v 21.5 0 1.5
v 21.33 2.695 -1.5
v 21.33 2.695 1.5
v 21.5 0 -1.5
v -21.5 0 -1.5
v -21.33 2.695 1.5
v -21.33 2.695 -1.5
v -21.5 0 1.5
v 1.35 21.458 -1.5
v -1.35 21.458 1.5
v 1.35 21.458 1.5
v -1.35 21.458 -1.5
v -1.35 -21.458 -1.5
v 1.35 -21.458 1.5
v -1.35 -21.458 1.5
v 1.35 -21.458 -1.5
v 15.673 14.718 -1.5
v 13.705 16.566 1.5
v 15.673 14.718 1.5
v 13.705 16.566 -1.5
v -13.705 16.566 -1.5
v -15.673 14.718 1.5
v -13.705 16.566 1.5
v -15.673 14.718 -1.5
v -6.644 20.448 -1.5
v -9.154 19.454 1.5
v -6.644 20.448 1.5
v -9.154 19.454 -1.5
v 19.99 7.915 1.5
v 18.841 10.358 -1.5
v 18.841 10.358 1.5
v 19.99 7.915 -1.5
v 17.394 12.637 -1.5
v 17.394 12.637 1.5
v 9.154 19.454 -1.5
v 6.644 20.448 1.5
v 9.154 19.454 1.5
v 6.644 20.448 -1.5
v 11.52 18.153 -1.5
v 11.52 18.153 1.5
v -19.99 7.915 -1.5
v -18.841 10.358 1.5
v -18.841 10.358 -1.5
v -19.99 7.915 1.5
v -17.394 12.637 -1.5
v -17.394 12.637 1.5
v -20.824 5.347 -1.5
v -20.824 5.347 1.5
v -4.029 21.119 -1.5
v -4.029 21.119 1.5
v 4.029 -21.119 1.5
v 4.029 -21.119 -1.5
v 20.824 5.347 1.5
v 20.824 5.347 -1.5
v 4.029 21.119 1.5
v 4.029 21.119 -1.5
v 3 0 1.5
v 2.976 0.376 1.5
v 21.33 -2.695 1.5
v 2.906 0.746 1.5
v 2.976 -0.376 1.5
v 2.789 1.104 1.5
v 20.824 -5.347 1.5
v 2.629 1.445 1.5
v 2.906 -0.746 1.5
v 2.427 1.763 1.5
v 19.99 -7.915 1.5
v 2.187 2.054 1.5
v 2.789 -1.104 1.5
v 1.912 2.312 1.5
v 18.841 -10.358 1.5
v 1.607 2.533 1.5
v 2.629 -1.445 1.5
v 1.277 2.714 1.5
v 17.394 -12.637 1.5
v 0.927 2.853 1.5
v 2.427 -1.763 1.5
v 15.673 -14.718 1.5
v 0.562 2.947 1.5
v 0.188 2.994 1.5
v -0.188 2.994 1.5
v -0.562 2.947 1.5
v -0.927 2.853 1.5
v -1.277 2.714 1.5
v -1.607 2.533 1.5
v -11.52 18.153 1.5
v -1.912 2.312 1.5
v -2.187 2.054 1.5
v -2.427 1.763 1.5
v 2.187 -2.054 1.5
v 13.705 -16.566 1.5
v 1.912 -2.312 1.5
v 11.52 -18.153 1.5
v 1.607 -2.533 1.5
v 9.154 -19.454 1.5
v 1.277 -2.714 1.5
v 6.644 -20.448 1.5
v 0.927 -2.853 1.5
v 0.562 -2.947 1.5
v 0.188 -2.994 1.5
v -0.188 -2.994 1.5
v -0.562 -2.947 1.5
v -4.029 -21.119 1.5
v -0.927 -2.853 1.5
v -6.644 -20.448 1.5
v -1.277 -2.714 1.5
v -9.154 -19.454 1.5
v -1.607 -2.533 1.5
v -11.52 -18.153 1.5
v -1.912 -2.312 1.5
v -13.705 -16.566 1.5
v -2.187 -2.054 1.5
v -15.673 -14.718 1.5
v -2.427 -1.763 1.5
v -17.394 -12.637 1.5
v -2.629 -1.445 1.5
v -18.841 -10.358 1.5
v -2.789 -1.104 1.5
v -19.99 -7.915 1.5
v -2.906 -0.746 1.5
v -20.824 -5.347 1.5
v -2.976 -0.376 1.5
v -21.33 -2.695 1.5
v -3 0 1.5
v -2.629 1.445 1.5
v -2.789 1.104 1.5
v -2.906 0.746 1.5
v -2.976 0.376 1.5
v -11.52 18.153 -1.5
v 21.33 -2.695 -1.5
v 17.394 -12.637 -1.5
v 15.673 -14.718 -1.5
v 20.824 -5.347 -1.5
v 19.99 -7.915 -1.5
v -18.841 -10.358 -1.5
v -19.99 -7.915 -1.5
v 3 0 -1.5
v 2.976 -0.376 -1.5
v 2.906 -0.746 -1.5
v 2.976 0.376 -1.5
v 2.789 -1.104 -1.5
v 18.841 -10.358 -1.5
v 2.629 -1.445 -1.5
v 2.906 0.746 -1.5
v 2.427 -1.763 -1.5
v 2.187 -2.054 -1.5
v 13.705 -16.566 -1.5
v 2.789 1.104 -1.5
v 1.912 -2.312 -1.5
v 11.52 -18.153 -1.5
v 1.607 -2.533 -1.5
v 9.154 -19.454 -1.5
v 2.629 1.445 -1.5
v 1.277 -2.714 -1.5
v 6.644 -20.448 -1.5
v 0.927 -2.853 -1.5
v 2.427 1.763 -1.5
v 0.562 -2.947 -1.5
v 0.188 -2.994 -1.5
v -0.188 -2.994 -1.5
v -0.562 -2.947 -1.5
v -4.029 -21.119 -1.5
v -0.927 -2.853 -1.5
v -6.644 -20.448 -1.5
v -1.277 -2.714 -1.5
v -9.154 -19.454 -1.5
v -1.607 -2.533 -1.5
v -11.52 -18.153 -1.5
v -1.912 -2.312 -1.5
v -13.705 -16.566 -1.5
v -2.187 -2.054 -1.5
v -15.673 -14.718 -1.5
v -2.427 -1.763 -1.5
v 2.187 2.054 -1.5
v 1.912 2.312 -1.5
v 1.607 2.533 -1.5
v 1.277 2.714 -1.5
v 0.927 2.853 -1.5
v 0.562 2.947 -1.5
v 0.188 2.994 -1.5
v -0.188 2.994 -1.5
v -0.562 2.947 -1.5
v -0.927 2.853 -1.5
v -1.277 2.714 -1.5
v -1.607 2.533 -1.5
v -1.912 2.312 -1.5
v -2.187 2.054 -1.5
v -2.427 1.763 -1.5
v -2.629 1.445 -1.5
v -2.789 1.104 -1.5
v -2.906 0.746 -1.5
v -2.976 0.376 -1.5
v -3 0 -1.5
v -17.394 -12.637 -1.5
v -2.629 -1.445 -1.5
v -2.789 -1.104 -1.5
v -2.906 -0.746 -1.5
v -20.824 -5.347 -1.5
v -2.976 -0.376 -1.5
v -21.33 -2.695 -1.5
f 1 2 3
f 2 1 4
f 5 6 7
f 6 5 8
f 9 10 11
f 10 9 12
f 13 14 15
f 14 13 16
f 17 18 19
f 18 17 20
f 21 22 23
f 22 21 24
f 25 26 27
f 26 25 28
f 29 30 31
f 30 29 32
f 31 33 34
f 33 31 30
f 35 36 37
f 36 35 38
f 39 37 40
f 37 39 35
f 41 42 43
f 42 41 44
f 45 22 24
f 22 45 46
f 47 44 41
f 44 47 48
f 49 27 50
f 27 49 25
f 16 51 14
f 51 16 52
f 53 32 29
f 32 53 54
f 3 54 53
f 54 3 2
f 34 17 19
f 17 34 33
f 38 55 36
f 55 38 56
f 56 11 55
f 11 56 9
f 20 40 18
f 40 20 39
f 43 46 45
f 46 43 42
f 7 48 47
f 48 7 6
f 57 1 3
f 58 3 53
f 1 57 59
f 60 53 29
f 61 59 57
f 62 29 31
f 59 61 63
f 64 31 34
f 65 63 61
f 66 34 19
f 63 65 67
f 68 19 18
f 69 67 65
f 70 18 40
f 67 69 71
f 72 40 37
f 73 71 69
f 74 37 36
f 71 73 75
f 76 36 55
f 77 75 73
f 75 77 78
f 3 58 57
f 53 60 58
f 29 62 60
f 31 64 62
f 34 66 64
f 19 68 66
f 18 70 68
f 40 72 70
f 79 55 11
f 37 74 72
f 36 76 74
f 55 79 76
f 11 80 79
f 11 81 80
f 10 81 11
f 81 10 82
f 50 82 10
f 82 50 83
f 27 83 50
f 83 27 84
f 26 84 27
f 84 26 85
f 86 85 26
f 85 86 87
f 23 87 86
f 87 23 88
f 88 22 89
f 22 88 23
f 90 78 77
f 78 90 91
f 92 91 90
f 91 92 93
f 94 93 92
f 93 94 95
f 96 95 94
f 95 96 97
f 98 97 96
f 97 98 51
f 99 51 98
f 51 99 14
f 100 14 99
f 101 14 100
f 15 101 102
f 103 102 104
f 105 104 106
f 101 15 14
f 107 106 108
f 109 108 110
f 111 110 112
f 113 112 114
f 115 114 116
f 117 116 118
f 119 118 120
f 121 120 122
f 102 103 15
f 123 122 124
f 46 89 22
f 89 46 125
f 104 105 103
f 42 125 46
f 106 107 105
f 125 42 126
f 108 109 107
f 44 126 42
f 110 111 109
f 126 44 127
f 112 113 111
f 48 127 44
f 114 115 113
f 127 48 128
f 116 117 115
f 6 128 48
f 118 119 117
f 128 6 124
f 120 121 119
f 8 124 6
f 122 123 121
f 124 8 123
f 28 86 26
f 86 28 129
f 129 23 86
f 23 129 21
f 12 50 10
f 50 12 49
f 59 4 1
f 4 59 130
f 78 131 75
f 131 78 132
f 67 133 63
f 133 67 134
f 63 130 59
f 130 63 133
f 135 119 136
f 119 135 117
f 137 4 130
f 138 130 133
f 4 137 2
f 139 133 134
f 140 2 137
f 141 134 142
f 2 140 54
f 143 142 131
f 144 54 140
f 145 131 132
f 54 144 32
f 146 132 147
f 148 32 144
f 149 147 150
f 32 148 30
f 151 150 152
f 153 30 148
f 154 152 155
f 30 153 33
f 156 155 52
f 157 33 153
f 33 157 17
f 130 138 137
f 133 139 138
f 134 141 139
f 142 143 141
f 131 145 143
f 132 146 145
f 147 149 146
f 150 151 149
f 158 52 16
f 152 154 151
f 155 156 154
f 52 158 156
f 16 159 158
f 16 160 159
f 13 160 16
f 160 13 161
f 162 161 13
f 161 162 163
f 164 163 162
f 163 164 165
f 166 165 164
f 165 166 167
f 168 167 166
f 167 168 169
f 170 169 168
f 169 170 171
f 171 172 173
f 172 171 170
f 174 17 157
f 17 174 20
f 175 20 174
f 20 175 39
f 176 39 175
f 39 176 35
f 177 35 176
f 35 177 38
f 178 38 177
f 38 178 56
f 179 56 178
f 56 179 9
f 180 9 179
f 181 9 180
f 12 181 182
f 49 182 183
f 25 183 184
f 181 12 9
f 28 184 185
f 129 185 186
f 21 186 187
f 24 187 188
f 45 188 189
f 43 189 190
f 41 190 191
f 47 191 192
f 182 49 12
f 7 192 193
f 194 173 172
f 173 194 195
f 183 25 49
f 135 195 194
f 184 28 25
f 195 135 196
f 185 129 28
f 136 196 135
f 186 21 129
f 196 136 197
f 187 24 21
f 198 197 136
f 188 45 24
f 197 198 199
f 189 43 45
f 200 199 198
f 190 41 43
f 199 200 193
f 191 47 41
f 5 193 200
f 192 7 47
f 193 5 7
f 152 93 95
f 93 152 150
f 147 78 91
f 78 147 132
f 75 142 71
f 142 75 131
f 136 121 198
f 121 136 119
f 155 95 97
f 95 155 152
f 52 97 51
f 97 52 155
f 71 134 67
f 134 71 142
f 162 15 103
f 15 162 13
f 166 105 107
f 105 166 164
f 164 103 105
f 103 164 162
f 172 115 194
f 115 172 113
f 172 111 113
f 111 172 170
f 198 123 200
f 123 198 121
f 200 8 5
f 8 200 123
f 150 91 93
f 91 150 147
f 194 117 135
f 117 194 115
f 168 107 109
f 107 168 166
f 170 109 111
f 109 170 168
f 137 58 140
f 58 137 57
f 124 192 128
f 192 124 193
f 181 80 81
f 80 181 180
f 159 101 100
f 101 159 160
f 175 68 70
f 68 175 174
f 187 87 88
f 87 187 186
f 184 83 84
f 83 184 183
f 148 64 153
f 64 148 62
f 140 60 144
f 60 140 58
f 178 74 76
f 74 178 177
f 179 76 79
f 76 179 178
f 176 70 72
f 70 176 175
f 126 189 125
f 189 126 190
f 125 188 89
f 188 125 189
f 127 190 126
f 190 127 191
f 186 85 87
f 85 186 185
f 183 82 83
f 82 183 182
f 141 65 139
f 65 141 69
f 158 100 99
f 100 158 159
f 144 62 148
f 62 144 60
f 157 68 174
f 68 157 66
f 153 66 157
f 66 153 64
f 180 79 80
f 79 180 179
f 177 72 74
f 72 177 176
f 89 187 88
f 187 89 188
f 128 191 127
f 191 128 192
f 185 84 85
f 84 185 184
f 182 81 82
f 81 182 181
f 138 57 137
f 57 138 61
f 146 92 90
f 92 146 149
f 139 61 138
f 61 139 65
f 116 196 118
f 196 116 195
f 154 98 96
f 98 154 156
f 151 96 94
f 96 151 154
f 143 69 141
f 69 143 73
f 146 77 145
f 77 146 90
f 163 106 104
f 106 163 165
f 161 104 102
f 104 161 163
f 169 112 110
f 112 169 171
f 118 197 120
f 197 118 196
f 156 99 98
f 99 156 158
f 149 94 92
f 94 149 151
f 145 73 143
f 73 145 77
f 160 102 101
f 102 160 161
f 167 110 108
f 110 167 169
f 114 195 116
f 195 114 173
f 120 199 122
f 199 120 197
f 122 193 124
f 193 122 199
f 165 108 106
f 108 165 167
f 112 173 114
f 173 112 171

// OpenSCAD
$fn = 50;


difference() {
	union() {
		translate(v = [0, 0, -1.5000000000]) {
			cylinder(h = 3, r = 21.5000000000);
		}
	}
	union() {
		translate(v = [0, 0, -100.0000000000]) {
			cylinder(h = 200, r = 3);
		}
	}
}
